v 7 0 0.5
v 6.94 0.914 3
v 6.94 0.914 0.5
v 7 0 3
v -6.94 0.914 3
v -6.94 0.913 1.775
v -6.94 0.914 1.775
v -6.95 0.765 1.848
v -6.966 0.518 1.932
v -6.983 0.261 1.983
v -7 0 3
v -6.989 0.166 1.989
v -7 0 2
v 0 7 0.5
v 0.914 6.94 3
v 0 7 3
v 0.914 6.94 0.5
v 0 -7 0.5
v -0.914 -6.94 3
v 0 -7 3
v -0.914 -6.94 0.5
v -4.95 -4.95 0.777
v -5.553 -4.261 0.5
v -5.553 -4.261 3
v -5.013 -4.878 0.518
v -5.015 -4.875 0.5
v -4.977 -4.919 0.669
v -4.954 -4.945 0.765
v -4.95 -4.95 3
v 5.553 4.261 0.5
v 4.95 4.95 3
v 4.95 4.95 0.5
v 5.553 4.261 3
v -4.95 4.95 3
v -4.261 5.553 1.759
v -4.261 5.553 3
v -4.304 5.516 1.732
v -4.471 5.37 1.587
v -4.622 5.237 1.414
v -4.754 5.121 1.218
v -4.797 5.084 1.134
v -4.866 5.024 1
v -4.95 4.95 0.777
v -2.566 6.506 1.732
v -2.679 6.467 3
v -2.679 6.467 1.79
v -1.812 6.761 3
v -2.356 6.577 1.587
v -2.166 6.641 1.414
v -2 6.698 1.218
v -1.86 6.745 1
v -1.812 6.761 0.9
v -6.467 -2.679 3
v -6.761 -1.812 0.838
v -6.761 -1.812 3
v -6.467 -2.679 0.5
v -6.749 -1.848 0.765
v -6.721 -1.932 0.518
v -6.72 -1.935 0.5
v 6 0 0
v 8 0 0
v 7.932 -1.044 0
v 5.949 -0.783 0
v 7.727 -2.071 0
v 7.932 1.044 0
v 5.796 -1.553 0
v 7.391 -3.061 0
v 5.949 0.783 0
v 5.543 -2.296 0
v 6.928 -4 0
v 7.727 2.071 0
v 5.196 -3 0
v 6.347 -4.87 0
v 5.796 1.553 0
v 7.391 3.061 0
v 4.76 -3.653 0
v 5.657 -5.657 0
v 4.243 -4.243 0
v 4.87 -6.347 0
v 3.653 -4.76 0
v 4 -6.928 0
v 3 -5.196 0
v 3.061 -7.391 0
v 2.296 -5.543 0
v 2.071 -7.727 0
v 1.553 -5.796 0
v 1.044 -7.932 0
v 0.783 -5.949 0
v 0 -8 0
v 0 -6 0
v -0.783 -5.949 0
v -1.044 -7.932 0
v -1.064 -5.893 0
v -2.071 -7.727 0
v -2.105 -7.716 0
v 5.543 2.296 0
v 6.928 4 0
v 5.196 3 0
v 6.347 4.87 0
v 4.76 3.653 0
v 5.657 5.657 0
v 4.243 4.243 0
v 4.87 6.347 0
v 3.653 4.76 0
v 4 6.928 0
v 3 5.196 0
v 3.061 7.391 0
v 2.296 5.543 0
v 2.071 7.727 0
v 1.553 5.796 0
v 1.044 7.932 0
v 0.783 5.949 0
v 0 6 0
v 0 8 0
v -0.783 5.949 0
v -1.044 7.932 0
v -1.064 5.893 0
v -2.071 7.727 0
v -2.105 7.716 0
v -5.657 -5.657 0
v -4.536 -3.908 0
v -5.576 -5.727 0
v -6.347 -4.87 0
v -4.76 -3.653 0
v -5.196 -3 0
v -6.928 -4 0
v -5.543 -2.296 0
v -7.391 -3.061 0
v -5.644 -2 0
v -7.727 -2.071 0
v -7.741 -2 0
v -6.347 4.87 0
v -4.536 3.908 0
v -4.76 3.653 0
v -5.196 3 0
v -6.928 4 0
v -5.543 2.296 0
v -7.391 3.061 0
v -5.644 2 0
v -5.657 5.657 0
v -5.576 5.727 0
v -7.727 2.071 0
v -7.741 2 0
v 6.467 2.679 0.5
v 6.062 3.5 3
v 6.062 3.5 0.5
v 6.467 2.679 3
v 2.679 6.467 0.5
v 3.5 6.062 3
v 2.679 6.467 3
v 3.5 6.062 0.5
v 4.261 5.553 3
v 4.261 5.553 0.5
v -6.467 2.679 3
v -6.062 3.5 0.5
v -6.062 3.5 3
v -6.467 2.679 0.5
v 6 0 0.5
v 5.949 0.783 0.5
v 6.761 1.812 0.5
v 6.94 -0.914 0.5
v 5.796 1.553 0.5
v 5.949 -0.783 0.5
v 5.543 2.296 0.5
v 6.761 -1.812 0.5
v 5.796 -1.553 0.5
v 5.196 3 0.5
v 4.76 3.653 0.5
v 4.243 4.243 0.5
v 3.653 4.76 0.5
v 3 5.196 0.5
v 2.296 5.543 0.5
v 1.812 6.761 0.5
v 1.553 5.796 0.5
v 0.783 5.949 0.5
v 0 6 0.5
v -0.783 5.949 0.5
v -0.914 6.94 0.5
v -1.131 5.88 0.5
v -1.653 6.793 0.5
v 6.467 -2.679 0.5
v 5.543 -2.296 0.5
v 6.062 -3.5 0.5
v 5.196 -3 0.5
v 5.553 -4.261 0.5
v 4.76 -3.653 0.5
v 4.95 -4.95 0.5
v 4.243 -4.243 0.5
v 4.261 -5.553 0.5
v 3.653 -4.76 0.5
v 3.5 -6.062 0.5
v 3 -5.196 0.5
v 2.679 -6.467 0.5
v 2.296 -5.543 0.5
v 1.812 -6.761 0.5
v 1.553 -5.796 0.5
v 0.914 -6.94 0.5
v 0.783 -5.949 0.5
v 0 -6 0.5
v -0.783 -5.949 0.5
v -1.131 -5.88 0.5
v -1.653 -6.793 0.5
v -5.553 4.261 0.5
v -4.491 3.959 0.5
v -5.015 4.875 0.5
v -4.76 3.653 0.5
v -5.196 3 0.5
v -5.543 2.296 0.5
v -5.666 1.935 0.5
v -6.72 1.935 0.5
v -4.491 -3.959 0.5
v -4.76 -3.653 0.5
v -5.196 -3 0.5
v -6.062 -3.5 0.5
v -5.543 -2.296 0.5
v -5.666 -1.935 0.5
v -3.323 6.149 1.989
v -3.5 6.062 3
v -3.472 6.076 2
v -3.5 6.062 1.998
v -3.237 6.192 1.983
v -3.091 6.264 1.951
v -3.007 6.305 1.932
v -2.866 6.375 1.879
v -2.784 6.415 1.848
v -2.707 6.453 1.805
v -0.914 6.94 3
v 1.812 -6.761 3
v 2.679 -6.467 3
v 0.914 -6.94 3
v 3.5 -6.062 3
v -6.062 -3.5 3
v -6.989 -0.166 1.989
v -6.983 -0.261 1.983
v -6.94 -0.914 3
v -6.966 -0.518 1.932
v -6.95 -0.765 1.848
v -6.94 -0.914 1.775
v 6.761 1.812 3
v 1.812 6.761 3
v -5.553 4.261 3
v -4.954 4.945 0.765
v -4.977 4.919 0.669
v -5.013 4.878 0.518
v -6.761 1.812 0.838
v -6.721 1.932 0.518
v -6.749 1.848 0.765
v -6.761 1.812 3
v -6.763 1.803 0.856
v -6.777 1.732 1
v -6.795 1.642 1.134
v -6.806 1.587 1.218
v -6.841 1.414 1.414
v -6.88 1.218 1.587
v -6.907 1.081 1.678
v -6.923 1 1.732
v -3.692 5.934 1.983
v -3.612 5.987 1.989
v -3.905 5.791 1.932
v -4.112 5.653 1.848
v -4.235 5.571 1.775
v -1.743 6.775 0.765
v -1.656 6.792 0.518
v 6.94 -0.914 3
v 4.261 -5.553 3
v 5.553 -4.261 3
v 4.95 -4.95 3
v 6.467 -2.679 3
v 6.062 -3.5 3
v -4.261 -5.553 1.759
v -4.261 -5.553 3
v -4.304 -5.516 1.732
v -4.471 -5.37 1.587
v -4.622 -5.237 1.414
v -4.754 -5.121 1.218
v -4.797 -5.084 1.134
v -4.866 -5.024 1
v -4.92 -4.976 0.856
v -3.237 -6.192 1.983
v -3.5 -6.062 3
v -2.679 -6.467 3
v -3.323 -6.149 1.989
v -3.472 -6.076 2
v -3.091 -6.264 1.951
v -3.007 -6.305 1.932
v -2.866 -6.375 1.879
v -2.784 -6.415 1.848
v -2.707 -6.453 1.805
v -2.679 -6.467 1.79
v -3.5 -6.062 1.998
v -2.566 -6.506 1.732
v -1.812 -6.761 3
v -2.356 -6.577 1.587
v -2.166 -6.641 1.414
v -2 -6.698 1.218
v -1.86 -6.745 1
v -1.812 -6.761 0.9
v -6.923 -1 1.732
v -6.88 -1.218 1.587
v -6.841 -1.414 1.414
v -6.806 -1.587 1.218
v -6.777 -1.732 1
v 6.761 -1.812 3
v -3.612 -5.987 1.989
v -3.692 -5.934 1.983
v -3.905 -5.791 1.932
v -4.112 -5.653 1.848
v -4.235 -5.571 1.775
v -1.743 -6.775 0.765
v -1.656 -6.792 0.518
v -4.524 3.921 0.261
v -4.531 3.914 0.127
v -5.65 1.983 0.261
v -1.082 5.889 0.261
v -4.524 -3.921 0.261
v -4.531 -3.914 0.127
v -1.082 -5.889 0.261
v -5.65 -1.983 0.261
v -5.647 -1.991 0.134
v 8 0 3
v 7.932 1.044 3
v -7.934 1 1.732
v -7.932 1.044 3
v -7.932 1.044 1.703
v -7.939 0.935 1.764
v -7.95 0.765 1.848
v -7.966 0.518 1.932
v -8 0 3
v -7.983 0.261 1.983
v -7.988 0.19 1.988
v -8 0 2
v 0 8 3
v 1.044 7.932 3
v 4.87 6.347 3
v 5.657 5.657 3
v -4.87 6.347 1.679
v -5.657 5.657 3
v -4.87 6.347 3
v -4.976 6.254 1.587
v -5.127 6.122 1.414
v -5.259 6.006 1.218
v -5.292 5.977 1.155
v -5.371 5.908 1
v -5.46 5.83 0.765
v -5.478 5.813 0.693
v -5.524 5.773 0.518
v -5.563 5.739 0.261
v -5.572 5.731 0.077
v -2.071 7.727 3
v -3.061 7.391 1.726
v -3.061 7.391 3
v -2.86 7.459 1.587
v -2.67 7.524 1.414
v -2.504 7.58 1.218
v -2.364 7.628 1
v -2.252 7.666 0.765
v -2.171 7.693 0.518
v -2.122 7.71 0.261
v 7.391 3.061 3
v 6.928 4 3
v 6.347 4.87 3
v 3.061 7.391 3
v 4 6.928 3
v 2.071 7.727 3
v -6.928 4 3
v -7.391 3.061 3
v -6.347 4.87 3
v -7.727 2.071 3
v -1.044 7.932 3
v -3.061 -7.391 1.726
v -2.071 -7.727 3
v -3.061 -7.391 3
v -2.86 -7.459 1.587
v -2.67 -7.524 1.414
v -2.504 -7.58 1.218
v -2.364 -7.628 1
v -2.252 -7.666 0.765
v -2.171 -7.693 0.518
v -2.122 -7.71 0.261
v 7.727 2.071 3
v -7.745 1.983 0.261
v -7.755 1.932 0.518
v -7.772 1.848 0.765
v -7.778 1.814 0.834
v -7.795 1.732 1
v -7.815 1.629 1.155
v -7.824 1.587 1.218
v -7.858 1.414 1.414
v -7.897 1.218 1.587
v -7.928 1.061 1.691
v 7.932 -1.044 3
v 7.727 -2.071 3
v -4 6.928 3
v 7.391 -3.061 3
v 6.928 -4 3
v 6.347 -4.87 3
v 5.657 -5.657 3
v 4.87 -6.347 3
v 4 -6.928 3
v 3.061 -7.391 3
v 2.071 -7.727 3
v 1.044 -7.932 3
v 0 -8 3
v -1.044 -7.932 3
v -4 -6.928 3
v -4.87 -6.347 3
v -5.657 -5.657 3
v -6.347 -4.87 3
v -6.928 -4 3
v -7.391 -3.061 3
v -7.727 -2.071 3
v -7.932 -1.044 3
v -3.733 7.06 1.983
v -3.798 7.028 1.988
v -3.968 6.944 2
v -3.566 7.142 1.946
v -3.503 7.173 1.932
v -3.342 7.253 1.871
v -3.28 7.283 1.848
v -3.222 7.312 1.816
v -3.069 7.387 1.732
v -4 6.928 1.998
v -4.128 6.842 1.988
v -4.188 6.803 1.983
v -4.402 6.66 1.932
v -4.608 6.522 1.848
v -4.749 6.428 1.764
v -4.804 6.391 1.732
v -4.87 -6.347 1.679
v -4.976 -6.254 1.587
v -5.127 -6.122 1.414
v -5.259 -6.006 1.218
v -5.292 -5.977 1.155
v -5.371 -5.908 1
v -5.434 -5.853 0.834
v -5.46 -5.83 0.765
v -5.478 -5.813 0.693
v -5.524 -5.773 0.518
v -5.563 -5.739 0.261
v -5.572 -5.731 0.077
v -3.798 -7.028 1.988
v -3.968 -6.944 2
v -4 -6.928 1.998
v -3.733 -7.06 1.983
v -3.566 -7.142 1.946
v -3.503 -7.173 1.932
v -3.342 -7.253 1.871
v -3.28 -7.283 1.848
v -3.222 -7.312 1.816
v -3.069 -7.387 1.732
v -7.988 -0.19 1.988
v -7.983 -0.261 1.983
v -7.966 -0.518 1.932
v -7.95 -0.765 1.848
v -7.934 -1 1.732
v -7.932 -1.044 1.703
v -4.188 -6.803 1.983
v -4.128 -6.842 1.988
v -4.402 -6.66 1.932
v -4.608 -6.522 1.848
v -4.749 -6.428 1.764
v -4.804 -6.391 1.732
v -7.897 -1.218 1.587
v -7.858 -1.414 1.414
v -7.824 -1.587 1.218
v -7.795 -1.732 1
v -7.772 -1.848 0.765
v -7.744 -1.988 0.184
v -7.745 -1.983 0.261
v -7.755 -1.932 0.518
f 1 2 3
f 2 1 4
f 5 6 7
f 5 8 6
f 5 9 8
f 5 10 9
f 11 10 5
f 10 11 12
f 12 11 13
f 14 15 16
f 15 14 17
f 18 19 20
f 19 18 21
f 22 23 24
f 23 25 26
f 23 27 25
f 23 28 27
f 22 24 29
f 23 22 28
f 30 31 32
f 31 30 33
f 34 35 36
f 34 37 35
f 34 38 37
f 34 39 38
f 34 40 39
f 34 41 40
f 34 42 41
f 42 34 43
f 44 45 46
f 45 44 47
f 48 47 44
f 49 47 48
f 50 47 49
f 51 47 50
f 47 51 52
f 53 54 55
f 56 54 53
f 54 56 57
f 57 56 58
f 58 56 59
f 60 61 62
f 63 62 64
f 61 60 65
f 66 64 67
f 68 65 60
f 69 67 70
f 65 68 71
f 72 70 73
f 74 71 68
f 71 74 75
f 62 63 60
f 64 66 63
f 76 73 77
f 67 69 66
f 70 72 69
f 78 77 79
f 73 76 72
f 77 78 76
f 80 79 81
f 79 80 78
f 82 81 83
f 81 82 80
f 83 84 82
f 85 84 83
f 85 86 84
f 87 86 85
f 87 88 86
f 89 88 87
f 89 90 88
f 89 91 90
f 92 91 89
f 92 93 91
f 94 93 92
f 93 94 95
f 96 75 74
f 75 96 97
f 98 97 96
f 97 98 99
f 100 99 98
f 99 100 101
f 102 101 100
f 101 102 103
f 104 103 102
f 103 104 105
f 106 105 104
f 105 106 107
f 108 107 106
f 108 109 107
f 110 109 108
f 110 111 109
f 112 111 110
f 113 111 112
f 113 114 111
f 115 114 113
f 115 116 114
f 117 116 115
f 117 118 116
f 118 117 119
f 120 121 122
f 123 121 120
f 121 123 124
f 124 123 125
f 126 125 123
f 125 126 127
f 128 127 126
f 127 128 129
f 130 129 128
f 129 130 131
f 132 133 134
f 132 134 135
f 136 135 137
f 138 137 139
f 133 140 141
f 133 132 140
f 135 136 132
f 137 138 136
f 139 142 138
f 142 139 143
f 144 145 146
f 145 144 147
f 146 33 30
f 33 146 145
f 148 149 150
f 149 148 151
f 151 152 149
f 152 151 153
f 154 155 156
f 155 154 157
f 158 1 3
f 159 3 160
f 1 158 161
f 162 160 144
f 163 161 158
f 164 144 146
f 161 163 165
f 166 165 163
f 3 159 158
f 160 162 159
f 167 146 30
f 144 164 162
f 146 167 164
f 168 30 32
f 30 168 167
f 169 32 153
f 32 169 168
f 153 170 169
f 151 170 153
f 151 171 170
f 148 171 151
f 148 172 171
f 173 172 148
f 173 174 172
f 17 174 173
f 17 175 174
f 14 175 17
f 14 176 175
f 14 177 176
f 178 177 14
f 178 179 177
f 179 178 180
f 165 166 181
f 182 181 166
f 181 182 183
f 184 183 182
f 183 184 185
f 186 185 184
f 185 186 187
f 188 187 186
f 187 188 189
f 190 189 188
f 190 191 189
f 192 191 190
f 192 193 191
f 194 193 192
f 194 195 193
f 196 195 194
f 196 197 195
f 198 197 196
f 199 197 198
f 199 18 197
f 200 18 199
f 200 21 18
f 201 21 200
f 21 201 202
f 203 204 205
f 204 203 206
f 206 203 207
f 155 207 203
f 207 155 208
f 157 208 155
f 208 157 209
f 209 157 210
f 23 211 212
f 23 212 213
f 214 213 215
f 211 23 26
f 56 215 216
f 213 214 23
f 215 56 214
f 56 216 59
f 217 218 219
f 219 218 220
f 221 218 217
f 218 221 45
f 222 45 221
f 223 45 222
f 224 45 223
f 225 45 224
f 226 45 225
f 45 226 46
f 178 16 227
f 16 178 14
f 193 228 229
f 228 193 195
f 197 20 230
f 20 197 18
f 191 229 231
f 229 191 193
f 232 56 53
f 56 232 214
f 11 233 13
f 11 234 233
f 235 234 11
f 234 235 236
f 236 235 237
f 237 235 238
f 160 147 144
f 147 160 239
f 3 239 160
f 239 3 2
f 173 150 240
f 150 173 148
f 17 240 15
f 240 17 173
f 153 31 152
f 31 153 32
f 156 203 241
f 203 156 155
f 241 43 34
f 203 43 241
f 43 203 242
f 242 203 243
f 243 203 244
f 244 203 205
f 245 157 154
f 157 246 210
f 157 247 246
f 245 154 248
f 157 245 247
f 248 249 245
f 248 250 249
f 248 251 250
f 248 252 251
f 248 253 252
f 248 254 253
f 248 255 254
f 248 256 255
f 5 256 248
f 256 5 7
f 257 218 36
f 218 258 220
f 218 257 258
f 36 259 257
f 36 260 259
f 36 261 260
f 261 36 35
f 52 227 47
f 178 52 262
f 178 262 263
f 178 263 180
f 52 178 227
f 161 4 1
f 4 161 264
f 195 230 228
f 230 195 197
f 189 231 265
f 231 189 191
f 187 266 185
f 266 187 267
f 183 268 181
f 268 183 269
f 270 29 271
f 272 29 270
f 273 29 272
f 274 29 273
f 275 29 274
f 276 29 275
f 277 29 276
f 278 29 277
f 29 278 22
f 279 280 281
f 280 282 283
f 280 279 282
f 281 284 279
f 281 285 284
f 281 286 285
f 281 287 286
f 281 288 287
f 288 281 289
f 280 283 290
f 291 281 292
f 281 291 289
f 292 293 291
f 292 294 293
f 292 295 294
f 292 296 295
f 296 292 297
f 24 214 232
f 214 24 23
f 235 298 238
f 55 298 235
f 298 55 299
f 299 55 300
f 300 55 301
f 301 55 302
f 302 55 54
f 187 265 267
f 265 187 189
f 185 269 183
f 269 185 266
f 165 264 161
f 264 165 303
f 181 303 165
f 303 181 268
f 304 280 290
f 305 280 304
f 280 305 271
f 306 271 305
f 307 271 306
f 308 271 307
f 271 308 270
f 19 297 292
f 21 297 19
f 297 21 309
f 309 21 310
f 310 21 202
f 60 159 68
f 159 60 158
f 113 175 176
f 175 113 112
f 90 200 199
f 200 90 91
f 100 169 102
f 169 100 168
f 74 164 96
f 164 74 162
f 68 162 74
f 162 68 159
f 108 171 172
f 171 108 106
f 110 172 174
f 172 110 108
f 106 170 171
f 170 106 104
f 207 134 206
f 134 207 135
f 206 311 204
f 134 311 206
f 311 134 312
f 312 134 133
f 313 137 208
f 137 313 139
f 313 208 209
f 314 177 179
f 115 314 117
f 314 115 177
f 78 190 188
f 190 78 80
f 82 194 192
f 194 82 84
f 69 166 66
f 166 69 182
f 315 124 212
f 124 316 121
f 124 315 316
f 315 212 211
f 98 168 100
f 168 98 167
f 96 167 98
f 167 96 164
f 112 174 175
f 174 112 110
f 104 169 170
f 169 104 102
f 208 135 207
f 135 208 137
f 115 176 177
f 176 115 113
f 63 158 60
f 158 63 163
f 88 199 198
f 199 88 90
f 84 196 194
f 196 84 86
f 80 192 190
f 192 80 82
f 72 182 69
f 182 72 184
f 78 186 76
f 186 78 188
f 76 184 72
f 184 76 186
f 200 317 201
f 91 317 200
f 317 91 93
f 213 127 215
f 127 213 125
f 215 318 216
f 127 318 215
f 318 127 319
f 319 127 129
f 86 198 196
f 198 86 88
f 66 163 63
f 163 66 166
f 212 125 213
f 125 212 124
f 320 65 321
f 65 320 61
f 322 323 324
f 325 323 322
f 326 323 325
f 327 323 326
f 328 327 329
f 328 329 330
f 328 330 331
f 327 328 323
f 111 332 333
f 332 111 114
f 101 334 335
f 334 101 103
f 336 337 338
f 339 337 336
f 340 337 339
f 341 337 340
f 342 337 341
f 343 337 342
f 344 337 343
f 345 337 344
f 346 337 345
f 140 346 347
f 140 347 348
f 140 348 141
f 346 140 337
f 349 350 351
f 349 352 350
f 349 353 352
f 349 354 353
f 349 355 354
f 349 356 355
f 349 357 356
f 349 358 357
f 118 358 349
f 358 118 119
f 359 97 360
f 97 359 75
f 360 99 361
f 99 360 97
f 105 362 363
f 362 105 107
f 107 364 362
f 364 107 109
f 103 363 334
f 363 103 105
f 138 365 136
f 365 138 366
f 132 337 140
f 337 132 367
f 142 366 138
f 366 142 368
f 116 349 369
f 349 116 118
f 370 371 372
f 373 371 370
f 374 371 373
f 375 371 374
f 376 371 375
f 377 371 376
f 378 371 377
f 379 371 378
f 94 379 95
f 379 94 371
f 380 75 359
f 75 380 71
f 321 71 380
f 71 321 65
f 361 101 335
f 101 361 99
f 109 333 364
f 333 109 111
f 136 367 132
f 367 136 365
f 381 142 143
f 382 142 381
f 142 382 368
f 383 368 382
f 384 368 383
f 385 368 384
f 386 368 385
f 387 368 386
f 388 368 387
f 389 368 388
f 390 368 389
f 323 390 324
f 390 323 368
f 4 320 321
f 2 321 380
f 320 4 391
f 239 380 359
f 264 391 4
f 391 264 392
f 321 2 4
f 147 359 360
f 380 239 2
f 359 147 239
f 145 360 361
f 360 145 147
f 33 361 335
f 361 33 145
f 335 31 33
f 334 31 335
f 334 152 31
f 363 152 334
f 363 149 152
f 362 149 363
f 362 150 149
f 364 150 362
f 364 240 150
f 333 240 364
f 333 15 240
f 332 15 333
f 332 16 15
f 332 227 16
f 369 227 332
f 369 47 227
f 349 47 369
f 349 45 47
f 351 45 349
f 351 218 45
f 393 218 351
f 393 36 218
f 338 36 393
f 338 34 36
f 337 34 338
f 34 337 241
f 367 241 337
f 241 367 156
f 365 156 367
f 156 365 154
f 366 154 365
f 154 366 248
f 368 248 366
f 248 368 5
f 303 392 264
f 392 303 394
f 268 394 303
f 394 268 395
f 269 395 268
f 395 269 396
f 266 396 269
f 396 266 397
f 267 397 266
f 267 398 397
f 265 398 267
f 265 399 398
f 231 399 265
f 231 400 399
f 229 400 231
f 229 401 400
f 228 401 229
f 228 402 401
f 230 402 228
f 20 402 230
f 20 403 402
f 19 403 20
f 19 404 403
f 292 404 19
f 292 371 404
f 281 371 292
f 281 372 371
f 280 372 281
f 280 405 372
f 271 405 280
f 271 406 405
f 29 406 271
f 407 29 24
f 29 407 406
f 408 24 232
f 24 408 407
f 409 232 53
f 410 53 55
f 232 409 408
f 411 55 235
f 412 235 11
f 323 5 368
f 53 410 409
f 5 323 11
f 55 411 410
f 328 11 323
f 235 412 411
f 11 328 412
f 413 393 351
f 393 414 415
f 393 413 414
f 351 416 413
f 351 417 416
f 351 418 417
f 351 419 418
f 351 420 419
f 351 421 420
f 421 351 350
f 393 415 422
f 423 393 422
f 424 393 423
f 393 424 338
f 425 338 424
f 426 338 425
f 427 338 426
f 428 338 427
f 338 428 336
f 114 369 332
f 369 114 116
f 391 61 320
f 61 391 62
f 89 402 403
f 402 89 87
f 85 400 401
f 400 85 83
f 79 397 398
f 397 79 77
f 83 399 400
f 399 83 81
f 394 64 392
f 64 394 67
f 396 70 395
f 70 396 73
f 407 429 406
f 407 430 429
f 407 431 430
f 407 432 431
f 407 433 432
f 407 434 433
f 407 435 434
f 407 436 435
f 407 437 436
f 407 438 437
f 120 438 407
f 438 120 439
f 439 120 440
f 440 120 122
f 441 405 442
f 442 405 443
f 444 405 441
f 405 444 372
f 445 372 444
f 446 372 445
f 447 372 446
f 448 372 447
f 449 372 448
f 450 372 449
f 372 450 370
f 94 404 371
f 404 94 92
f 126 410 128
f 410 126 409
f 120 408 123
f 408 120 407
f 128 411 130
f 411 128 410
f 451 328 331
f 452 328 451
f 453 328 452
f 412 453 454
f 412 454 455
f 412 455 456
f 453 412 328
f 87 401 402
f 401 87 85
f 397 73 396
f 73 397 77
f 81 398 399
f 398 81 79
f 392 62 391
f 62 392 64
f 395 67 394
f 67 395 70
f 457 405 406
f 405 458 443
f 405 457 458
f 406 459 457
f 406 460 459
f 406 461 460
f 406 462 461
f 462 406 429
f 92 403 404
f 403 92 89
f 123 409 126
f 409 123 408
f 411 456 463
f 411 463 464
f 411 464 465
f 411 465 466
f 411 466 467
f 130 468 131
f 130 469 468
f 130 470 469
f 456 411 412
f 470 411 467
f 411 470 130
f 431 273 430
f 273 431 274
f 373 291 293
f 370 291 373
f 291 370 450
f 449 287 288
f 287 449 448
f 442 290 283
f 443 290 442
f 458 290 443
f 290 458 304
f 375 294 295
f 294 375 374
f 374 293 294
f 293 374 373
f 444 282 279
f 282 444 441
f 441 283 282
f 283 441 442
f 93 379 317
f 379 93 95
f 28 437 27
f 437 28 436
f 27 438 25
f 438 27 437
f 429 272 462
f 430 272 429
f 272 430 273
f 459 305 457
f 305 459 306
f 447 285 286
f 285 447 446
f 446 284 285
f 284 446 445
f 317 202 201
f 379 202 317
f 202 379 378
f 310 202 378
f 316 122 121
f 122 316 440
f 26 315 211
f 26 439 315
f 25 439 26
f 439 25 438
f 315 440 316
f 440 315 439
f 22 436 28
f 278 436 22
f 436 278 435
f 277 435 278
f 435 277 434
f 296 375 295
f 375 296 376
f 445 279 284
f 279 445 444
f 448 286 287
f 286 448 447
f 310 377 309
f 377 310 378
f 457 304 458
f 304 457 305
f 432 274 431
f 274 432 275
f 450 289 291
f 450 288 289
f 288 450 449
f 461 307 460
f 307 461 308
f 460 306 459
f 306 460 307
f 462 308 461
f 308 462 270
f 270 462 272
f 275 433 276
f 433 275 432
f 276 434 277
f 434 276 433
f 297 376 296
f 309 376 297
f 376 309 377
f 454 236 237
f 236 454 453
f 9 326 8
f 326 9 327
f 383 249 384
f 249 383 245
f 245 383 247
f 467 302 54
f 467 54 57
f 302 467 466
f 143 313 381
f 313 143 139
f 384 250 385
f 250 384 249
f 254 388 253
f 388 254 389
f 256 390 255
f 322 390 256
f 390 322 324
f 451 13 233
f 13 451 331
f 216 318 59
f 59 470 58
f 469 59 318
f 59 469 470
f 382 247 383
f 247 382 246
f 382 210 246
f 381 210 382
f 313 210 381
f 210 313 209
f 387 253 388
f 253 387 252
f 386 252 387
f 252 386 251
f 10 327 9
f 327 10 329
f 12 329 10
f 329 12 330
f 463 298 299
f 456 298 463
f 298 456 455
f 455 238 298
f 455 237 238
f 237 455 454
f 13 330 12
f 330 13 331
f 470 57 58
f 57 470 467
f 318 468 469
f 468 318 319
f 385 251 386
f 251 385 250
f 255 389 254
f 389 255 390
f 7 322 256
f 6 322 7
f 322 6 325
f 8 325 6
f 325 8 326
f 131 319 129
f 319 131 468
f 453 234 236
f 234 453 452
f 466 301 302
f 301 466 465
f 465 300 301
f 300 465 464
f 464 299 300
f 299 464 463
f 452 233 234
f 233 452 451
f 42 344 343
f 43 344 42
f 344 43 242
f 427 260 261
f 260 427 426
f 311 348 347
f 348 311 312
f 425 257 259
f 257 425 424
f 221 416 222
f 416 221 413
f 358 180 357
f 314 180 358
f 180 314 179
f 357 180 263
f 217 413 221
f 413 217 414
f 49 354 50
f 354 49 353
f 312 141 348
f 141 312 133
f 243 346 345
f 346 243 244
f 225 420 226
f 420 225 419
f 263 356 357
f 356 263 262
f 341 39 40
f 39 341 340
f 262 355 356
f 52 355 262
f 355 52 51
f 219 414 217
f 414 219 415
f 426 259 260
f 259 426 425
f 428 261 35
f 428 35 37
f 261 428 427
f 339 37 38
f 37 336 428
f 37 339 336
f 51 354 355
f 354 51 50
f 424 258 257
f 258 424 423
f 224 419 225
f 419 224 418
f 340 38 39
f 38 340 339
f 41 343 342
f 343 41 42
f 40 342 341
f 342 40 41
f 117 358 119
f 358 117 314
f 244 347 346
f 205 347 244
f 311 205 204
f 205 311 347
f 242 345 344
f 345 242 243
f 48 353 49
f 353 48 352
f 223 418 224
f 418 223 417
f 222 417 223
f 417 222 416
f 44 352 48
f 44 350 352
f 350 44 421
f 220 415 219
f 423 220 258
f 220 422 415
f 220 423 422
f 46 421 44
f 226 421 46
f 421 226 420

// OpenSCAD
// file: ../build_environments.scad
// build_environments.scad: modules to build level sections
//

module pool(diameter=10.0, wall_height=2.0, step_width=3.0, connections=[])
{
    difference() {
        union() {
        difference() {
            cylinder(h=0.5,r1=diameter+step_width,r2=diameter+step_width,$fn=48);
            translate([0,0,-0.1])
                cylinder(h=0.7,r1=diameter,r2=diameter,$fn=48);
        }
        difference() {
            cylinder(h=wall_height,r1=diameter+step_width+1.0,r2=diameter+step_width+1.0,$fn=48);
            translate([0,0,-0.1])
                cylinder(h=wall_height+0.2,r1=diameter+step_width,r2=diameter+step_width,$fn=48);
        }
        }
    
        for (c = connections)
        {
            rotate([0,90,0]) {
                angle = atan2(c[1],c[0]);
                rotate([-angle,0,0]) {
                    cylinder(h=diameter+5.0,r1=c[2],r2=c[2],$fn=48);
                }
            }
        }
    }
}

module straight(length=10.0, width=2.0, dy1=0.0, dy2=0.0, dz=0.0)
{
    dims = [0, 0, 0, 0, 0, (dz/length)];
    matrix = [
        [ 1, dims[0], dims[1], 0 ],
        [ dims[2], 1, dims[4], 0 ],
        [ dims[5], dims[3], 1, 0 ],
        [ 0, 0, 0, 1 ]
    ];
    multmatrix(matrix)
    difference() {
        translate([dy1,0,0])
        union() {
            rotate([0,90,0]) {
                difference() {
                    cylinder(h=(length-dy1-dy2),r1=width+1.0,r2=width+1.0,$fn=24);
                    translate([0,0,-0.1])
                        cylinder(h=(length-dy1-dy2+0.2),r1=width,r2=width,$fn=24);
                }
                difference() {
                    cylinder(h=1.0,r1=width+2.0,r2=width+2.0,$fn=24);
                    translate([0,0,-0.1])
                        cylinder(h=1.2,r1=width,r2=width,$fn=24);
                }
                translate([0,0,(length-dy1-dy2)-1.0]) {
                    difference() {
                        cylinder(h=1.0,r1=width+2.0,r2=width+2.0,$fn=24);
                        translate([0,0,-0.1])
                            cylinder(h=1.2,r1=width,r2=width,$fn=24);
                    }
                }
            }
        }
        translate([0,0,-(2*width+4.0)/2])
            cube([3*length,3*length,2*width+4.0],center=true);
    }
}

module curve(p0=[0,0], center=[0,0], dir=1, angle=0.0, width=2.0)
{
    radius = sqrt((p0[0]-center[0])*(p0[0]-center[0]) + (p0[1]-center[1])*(p0[1]-center[1]));
    if (dir == 0) {
        difference() {
            rotate([0,0,-90])
            difference() {
                rotate_extrude(angle = angle, convexity = 10, $fn=32)
                    translate([radius, 0, 0])
                        circle(r = width+1.0,$fn=24);
                rotate([0,0,-1.0])
                    rotate_extrude(angle = angle+2.0, convexity = 10, $fn=32)
                        translate([radius, 0, 0])
                            circle(r = width,$fn=24);
            }
            translate([0,0,-(2*width+4.0)/2])
                cube([5*radius,5*radius,2*width+4.0],center=true);
        }
    }
    else {
        difference() {
            rotate([0,0,90])
            difference() {
                rotate_extrude(angle = -angle, convexity = 10, $fn=32)
                    translate([radius, 0, 0])
                        circle(r = width+1.0,$fn=24);
                rotate([0,0,1.0])
                    rotate_extrude(angle = -angle-2.0, convexity = 10, $fn=32)
                        translate([radius, 0, 0])
                            circle(r = width,$fn=24);
            }
            translate([0,0,-(2*width+4.0)/2])
                cube([5*radius,5*radius,2*width+4.0],center=true);
        }
    }

}

// test pool
//pool(diameter=12.0000, wall_height=3.0000, step_width=3.0000, connections=[[0.0000,-26.0000,2.0000], [23.6074,0.0000,2.0000]]);

// test straight, slope
//straight(length=26.0000, width=2.0000, dy1=11.8322, dy2=6.7082, dz=0.0000);
//straight(length=29.1549, width=12.0000, dy1=0.0000, dy2=0.0000, dz=-15.0000);

// test curve
//curve(p0=[23.6074, 0.0000], center=[23.6074, 5.0000], dir=0, angle=60.1011, width=2.0000);
//curve(p0=[33.6426, 12.4219], center=[37.9771, 9.9295], dir=1, angle=120.4627, width=2.0000);
// main file
use <../build_environments.scad>;
pool(diameter=6.0000, wall_height=3.0000, step_width=1.0000, connections=[[-8.0000,-14.0000,2.0000], [-16.0000,0.0000,2.0000], [-8.0000,14.0000,2.0000]]);
